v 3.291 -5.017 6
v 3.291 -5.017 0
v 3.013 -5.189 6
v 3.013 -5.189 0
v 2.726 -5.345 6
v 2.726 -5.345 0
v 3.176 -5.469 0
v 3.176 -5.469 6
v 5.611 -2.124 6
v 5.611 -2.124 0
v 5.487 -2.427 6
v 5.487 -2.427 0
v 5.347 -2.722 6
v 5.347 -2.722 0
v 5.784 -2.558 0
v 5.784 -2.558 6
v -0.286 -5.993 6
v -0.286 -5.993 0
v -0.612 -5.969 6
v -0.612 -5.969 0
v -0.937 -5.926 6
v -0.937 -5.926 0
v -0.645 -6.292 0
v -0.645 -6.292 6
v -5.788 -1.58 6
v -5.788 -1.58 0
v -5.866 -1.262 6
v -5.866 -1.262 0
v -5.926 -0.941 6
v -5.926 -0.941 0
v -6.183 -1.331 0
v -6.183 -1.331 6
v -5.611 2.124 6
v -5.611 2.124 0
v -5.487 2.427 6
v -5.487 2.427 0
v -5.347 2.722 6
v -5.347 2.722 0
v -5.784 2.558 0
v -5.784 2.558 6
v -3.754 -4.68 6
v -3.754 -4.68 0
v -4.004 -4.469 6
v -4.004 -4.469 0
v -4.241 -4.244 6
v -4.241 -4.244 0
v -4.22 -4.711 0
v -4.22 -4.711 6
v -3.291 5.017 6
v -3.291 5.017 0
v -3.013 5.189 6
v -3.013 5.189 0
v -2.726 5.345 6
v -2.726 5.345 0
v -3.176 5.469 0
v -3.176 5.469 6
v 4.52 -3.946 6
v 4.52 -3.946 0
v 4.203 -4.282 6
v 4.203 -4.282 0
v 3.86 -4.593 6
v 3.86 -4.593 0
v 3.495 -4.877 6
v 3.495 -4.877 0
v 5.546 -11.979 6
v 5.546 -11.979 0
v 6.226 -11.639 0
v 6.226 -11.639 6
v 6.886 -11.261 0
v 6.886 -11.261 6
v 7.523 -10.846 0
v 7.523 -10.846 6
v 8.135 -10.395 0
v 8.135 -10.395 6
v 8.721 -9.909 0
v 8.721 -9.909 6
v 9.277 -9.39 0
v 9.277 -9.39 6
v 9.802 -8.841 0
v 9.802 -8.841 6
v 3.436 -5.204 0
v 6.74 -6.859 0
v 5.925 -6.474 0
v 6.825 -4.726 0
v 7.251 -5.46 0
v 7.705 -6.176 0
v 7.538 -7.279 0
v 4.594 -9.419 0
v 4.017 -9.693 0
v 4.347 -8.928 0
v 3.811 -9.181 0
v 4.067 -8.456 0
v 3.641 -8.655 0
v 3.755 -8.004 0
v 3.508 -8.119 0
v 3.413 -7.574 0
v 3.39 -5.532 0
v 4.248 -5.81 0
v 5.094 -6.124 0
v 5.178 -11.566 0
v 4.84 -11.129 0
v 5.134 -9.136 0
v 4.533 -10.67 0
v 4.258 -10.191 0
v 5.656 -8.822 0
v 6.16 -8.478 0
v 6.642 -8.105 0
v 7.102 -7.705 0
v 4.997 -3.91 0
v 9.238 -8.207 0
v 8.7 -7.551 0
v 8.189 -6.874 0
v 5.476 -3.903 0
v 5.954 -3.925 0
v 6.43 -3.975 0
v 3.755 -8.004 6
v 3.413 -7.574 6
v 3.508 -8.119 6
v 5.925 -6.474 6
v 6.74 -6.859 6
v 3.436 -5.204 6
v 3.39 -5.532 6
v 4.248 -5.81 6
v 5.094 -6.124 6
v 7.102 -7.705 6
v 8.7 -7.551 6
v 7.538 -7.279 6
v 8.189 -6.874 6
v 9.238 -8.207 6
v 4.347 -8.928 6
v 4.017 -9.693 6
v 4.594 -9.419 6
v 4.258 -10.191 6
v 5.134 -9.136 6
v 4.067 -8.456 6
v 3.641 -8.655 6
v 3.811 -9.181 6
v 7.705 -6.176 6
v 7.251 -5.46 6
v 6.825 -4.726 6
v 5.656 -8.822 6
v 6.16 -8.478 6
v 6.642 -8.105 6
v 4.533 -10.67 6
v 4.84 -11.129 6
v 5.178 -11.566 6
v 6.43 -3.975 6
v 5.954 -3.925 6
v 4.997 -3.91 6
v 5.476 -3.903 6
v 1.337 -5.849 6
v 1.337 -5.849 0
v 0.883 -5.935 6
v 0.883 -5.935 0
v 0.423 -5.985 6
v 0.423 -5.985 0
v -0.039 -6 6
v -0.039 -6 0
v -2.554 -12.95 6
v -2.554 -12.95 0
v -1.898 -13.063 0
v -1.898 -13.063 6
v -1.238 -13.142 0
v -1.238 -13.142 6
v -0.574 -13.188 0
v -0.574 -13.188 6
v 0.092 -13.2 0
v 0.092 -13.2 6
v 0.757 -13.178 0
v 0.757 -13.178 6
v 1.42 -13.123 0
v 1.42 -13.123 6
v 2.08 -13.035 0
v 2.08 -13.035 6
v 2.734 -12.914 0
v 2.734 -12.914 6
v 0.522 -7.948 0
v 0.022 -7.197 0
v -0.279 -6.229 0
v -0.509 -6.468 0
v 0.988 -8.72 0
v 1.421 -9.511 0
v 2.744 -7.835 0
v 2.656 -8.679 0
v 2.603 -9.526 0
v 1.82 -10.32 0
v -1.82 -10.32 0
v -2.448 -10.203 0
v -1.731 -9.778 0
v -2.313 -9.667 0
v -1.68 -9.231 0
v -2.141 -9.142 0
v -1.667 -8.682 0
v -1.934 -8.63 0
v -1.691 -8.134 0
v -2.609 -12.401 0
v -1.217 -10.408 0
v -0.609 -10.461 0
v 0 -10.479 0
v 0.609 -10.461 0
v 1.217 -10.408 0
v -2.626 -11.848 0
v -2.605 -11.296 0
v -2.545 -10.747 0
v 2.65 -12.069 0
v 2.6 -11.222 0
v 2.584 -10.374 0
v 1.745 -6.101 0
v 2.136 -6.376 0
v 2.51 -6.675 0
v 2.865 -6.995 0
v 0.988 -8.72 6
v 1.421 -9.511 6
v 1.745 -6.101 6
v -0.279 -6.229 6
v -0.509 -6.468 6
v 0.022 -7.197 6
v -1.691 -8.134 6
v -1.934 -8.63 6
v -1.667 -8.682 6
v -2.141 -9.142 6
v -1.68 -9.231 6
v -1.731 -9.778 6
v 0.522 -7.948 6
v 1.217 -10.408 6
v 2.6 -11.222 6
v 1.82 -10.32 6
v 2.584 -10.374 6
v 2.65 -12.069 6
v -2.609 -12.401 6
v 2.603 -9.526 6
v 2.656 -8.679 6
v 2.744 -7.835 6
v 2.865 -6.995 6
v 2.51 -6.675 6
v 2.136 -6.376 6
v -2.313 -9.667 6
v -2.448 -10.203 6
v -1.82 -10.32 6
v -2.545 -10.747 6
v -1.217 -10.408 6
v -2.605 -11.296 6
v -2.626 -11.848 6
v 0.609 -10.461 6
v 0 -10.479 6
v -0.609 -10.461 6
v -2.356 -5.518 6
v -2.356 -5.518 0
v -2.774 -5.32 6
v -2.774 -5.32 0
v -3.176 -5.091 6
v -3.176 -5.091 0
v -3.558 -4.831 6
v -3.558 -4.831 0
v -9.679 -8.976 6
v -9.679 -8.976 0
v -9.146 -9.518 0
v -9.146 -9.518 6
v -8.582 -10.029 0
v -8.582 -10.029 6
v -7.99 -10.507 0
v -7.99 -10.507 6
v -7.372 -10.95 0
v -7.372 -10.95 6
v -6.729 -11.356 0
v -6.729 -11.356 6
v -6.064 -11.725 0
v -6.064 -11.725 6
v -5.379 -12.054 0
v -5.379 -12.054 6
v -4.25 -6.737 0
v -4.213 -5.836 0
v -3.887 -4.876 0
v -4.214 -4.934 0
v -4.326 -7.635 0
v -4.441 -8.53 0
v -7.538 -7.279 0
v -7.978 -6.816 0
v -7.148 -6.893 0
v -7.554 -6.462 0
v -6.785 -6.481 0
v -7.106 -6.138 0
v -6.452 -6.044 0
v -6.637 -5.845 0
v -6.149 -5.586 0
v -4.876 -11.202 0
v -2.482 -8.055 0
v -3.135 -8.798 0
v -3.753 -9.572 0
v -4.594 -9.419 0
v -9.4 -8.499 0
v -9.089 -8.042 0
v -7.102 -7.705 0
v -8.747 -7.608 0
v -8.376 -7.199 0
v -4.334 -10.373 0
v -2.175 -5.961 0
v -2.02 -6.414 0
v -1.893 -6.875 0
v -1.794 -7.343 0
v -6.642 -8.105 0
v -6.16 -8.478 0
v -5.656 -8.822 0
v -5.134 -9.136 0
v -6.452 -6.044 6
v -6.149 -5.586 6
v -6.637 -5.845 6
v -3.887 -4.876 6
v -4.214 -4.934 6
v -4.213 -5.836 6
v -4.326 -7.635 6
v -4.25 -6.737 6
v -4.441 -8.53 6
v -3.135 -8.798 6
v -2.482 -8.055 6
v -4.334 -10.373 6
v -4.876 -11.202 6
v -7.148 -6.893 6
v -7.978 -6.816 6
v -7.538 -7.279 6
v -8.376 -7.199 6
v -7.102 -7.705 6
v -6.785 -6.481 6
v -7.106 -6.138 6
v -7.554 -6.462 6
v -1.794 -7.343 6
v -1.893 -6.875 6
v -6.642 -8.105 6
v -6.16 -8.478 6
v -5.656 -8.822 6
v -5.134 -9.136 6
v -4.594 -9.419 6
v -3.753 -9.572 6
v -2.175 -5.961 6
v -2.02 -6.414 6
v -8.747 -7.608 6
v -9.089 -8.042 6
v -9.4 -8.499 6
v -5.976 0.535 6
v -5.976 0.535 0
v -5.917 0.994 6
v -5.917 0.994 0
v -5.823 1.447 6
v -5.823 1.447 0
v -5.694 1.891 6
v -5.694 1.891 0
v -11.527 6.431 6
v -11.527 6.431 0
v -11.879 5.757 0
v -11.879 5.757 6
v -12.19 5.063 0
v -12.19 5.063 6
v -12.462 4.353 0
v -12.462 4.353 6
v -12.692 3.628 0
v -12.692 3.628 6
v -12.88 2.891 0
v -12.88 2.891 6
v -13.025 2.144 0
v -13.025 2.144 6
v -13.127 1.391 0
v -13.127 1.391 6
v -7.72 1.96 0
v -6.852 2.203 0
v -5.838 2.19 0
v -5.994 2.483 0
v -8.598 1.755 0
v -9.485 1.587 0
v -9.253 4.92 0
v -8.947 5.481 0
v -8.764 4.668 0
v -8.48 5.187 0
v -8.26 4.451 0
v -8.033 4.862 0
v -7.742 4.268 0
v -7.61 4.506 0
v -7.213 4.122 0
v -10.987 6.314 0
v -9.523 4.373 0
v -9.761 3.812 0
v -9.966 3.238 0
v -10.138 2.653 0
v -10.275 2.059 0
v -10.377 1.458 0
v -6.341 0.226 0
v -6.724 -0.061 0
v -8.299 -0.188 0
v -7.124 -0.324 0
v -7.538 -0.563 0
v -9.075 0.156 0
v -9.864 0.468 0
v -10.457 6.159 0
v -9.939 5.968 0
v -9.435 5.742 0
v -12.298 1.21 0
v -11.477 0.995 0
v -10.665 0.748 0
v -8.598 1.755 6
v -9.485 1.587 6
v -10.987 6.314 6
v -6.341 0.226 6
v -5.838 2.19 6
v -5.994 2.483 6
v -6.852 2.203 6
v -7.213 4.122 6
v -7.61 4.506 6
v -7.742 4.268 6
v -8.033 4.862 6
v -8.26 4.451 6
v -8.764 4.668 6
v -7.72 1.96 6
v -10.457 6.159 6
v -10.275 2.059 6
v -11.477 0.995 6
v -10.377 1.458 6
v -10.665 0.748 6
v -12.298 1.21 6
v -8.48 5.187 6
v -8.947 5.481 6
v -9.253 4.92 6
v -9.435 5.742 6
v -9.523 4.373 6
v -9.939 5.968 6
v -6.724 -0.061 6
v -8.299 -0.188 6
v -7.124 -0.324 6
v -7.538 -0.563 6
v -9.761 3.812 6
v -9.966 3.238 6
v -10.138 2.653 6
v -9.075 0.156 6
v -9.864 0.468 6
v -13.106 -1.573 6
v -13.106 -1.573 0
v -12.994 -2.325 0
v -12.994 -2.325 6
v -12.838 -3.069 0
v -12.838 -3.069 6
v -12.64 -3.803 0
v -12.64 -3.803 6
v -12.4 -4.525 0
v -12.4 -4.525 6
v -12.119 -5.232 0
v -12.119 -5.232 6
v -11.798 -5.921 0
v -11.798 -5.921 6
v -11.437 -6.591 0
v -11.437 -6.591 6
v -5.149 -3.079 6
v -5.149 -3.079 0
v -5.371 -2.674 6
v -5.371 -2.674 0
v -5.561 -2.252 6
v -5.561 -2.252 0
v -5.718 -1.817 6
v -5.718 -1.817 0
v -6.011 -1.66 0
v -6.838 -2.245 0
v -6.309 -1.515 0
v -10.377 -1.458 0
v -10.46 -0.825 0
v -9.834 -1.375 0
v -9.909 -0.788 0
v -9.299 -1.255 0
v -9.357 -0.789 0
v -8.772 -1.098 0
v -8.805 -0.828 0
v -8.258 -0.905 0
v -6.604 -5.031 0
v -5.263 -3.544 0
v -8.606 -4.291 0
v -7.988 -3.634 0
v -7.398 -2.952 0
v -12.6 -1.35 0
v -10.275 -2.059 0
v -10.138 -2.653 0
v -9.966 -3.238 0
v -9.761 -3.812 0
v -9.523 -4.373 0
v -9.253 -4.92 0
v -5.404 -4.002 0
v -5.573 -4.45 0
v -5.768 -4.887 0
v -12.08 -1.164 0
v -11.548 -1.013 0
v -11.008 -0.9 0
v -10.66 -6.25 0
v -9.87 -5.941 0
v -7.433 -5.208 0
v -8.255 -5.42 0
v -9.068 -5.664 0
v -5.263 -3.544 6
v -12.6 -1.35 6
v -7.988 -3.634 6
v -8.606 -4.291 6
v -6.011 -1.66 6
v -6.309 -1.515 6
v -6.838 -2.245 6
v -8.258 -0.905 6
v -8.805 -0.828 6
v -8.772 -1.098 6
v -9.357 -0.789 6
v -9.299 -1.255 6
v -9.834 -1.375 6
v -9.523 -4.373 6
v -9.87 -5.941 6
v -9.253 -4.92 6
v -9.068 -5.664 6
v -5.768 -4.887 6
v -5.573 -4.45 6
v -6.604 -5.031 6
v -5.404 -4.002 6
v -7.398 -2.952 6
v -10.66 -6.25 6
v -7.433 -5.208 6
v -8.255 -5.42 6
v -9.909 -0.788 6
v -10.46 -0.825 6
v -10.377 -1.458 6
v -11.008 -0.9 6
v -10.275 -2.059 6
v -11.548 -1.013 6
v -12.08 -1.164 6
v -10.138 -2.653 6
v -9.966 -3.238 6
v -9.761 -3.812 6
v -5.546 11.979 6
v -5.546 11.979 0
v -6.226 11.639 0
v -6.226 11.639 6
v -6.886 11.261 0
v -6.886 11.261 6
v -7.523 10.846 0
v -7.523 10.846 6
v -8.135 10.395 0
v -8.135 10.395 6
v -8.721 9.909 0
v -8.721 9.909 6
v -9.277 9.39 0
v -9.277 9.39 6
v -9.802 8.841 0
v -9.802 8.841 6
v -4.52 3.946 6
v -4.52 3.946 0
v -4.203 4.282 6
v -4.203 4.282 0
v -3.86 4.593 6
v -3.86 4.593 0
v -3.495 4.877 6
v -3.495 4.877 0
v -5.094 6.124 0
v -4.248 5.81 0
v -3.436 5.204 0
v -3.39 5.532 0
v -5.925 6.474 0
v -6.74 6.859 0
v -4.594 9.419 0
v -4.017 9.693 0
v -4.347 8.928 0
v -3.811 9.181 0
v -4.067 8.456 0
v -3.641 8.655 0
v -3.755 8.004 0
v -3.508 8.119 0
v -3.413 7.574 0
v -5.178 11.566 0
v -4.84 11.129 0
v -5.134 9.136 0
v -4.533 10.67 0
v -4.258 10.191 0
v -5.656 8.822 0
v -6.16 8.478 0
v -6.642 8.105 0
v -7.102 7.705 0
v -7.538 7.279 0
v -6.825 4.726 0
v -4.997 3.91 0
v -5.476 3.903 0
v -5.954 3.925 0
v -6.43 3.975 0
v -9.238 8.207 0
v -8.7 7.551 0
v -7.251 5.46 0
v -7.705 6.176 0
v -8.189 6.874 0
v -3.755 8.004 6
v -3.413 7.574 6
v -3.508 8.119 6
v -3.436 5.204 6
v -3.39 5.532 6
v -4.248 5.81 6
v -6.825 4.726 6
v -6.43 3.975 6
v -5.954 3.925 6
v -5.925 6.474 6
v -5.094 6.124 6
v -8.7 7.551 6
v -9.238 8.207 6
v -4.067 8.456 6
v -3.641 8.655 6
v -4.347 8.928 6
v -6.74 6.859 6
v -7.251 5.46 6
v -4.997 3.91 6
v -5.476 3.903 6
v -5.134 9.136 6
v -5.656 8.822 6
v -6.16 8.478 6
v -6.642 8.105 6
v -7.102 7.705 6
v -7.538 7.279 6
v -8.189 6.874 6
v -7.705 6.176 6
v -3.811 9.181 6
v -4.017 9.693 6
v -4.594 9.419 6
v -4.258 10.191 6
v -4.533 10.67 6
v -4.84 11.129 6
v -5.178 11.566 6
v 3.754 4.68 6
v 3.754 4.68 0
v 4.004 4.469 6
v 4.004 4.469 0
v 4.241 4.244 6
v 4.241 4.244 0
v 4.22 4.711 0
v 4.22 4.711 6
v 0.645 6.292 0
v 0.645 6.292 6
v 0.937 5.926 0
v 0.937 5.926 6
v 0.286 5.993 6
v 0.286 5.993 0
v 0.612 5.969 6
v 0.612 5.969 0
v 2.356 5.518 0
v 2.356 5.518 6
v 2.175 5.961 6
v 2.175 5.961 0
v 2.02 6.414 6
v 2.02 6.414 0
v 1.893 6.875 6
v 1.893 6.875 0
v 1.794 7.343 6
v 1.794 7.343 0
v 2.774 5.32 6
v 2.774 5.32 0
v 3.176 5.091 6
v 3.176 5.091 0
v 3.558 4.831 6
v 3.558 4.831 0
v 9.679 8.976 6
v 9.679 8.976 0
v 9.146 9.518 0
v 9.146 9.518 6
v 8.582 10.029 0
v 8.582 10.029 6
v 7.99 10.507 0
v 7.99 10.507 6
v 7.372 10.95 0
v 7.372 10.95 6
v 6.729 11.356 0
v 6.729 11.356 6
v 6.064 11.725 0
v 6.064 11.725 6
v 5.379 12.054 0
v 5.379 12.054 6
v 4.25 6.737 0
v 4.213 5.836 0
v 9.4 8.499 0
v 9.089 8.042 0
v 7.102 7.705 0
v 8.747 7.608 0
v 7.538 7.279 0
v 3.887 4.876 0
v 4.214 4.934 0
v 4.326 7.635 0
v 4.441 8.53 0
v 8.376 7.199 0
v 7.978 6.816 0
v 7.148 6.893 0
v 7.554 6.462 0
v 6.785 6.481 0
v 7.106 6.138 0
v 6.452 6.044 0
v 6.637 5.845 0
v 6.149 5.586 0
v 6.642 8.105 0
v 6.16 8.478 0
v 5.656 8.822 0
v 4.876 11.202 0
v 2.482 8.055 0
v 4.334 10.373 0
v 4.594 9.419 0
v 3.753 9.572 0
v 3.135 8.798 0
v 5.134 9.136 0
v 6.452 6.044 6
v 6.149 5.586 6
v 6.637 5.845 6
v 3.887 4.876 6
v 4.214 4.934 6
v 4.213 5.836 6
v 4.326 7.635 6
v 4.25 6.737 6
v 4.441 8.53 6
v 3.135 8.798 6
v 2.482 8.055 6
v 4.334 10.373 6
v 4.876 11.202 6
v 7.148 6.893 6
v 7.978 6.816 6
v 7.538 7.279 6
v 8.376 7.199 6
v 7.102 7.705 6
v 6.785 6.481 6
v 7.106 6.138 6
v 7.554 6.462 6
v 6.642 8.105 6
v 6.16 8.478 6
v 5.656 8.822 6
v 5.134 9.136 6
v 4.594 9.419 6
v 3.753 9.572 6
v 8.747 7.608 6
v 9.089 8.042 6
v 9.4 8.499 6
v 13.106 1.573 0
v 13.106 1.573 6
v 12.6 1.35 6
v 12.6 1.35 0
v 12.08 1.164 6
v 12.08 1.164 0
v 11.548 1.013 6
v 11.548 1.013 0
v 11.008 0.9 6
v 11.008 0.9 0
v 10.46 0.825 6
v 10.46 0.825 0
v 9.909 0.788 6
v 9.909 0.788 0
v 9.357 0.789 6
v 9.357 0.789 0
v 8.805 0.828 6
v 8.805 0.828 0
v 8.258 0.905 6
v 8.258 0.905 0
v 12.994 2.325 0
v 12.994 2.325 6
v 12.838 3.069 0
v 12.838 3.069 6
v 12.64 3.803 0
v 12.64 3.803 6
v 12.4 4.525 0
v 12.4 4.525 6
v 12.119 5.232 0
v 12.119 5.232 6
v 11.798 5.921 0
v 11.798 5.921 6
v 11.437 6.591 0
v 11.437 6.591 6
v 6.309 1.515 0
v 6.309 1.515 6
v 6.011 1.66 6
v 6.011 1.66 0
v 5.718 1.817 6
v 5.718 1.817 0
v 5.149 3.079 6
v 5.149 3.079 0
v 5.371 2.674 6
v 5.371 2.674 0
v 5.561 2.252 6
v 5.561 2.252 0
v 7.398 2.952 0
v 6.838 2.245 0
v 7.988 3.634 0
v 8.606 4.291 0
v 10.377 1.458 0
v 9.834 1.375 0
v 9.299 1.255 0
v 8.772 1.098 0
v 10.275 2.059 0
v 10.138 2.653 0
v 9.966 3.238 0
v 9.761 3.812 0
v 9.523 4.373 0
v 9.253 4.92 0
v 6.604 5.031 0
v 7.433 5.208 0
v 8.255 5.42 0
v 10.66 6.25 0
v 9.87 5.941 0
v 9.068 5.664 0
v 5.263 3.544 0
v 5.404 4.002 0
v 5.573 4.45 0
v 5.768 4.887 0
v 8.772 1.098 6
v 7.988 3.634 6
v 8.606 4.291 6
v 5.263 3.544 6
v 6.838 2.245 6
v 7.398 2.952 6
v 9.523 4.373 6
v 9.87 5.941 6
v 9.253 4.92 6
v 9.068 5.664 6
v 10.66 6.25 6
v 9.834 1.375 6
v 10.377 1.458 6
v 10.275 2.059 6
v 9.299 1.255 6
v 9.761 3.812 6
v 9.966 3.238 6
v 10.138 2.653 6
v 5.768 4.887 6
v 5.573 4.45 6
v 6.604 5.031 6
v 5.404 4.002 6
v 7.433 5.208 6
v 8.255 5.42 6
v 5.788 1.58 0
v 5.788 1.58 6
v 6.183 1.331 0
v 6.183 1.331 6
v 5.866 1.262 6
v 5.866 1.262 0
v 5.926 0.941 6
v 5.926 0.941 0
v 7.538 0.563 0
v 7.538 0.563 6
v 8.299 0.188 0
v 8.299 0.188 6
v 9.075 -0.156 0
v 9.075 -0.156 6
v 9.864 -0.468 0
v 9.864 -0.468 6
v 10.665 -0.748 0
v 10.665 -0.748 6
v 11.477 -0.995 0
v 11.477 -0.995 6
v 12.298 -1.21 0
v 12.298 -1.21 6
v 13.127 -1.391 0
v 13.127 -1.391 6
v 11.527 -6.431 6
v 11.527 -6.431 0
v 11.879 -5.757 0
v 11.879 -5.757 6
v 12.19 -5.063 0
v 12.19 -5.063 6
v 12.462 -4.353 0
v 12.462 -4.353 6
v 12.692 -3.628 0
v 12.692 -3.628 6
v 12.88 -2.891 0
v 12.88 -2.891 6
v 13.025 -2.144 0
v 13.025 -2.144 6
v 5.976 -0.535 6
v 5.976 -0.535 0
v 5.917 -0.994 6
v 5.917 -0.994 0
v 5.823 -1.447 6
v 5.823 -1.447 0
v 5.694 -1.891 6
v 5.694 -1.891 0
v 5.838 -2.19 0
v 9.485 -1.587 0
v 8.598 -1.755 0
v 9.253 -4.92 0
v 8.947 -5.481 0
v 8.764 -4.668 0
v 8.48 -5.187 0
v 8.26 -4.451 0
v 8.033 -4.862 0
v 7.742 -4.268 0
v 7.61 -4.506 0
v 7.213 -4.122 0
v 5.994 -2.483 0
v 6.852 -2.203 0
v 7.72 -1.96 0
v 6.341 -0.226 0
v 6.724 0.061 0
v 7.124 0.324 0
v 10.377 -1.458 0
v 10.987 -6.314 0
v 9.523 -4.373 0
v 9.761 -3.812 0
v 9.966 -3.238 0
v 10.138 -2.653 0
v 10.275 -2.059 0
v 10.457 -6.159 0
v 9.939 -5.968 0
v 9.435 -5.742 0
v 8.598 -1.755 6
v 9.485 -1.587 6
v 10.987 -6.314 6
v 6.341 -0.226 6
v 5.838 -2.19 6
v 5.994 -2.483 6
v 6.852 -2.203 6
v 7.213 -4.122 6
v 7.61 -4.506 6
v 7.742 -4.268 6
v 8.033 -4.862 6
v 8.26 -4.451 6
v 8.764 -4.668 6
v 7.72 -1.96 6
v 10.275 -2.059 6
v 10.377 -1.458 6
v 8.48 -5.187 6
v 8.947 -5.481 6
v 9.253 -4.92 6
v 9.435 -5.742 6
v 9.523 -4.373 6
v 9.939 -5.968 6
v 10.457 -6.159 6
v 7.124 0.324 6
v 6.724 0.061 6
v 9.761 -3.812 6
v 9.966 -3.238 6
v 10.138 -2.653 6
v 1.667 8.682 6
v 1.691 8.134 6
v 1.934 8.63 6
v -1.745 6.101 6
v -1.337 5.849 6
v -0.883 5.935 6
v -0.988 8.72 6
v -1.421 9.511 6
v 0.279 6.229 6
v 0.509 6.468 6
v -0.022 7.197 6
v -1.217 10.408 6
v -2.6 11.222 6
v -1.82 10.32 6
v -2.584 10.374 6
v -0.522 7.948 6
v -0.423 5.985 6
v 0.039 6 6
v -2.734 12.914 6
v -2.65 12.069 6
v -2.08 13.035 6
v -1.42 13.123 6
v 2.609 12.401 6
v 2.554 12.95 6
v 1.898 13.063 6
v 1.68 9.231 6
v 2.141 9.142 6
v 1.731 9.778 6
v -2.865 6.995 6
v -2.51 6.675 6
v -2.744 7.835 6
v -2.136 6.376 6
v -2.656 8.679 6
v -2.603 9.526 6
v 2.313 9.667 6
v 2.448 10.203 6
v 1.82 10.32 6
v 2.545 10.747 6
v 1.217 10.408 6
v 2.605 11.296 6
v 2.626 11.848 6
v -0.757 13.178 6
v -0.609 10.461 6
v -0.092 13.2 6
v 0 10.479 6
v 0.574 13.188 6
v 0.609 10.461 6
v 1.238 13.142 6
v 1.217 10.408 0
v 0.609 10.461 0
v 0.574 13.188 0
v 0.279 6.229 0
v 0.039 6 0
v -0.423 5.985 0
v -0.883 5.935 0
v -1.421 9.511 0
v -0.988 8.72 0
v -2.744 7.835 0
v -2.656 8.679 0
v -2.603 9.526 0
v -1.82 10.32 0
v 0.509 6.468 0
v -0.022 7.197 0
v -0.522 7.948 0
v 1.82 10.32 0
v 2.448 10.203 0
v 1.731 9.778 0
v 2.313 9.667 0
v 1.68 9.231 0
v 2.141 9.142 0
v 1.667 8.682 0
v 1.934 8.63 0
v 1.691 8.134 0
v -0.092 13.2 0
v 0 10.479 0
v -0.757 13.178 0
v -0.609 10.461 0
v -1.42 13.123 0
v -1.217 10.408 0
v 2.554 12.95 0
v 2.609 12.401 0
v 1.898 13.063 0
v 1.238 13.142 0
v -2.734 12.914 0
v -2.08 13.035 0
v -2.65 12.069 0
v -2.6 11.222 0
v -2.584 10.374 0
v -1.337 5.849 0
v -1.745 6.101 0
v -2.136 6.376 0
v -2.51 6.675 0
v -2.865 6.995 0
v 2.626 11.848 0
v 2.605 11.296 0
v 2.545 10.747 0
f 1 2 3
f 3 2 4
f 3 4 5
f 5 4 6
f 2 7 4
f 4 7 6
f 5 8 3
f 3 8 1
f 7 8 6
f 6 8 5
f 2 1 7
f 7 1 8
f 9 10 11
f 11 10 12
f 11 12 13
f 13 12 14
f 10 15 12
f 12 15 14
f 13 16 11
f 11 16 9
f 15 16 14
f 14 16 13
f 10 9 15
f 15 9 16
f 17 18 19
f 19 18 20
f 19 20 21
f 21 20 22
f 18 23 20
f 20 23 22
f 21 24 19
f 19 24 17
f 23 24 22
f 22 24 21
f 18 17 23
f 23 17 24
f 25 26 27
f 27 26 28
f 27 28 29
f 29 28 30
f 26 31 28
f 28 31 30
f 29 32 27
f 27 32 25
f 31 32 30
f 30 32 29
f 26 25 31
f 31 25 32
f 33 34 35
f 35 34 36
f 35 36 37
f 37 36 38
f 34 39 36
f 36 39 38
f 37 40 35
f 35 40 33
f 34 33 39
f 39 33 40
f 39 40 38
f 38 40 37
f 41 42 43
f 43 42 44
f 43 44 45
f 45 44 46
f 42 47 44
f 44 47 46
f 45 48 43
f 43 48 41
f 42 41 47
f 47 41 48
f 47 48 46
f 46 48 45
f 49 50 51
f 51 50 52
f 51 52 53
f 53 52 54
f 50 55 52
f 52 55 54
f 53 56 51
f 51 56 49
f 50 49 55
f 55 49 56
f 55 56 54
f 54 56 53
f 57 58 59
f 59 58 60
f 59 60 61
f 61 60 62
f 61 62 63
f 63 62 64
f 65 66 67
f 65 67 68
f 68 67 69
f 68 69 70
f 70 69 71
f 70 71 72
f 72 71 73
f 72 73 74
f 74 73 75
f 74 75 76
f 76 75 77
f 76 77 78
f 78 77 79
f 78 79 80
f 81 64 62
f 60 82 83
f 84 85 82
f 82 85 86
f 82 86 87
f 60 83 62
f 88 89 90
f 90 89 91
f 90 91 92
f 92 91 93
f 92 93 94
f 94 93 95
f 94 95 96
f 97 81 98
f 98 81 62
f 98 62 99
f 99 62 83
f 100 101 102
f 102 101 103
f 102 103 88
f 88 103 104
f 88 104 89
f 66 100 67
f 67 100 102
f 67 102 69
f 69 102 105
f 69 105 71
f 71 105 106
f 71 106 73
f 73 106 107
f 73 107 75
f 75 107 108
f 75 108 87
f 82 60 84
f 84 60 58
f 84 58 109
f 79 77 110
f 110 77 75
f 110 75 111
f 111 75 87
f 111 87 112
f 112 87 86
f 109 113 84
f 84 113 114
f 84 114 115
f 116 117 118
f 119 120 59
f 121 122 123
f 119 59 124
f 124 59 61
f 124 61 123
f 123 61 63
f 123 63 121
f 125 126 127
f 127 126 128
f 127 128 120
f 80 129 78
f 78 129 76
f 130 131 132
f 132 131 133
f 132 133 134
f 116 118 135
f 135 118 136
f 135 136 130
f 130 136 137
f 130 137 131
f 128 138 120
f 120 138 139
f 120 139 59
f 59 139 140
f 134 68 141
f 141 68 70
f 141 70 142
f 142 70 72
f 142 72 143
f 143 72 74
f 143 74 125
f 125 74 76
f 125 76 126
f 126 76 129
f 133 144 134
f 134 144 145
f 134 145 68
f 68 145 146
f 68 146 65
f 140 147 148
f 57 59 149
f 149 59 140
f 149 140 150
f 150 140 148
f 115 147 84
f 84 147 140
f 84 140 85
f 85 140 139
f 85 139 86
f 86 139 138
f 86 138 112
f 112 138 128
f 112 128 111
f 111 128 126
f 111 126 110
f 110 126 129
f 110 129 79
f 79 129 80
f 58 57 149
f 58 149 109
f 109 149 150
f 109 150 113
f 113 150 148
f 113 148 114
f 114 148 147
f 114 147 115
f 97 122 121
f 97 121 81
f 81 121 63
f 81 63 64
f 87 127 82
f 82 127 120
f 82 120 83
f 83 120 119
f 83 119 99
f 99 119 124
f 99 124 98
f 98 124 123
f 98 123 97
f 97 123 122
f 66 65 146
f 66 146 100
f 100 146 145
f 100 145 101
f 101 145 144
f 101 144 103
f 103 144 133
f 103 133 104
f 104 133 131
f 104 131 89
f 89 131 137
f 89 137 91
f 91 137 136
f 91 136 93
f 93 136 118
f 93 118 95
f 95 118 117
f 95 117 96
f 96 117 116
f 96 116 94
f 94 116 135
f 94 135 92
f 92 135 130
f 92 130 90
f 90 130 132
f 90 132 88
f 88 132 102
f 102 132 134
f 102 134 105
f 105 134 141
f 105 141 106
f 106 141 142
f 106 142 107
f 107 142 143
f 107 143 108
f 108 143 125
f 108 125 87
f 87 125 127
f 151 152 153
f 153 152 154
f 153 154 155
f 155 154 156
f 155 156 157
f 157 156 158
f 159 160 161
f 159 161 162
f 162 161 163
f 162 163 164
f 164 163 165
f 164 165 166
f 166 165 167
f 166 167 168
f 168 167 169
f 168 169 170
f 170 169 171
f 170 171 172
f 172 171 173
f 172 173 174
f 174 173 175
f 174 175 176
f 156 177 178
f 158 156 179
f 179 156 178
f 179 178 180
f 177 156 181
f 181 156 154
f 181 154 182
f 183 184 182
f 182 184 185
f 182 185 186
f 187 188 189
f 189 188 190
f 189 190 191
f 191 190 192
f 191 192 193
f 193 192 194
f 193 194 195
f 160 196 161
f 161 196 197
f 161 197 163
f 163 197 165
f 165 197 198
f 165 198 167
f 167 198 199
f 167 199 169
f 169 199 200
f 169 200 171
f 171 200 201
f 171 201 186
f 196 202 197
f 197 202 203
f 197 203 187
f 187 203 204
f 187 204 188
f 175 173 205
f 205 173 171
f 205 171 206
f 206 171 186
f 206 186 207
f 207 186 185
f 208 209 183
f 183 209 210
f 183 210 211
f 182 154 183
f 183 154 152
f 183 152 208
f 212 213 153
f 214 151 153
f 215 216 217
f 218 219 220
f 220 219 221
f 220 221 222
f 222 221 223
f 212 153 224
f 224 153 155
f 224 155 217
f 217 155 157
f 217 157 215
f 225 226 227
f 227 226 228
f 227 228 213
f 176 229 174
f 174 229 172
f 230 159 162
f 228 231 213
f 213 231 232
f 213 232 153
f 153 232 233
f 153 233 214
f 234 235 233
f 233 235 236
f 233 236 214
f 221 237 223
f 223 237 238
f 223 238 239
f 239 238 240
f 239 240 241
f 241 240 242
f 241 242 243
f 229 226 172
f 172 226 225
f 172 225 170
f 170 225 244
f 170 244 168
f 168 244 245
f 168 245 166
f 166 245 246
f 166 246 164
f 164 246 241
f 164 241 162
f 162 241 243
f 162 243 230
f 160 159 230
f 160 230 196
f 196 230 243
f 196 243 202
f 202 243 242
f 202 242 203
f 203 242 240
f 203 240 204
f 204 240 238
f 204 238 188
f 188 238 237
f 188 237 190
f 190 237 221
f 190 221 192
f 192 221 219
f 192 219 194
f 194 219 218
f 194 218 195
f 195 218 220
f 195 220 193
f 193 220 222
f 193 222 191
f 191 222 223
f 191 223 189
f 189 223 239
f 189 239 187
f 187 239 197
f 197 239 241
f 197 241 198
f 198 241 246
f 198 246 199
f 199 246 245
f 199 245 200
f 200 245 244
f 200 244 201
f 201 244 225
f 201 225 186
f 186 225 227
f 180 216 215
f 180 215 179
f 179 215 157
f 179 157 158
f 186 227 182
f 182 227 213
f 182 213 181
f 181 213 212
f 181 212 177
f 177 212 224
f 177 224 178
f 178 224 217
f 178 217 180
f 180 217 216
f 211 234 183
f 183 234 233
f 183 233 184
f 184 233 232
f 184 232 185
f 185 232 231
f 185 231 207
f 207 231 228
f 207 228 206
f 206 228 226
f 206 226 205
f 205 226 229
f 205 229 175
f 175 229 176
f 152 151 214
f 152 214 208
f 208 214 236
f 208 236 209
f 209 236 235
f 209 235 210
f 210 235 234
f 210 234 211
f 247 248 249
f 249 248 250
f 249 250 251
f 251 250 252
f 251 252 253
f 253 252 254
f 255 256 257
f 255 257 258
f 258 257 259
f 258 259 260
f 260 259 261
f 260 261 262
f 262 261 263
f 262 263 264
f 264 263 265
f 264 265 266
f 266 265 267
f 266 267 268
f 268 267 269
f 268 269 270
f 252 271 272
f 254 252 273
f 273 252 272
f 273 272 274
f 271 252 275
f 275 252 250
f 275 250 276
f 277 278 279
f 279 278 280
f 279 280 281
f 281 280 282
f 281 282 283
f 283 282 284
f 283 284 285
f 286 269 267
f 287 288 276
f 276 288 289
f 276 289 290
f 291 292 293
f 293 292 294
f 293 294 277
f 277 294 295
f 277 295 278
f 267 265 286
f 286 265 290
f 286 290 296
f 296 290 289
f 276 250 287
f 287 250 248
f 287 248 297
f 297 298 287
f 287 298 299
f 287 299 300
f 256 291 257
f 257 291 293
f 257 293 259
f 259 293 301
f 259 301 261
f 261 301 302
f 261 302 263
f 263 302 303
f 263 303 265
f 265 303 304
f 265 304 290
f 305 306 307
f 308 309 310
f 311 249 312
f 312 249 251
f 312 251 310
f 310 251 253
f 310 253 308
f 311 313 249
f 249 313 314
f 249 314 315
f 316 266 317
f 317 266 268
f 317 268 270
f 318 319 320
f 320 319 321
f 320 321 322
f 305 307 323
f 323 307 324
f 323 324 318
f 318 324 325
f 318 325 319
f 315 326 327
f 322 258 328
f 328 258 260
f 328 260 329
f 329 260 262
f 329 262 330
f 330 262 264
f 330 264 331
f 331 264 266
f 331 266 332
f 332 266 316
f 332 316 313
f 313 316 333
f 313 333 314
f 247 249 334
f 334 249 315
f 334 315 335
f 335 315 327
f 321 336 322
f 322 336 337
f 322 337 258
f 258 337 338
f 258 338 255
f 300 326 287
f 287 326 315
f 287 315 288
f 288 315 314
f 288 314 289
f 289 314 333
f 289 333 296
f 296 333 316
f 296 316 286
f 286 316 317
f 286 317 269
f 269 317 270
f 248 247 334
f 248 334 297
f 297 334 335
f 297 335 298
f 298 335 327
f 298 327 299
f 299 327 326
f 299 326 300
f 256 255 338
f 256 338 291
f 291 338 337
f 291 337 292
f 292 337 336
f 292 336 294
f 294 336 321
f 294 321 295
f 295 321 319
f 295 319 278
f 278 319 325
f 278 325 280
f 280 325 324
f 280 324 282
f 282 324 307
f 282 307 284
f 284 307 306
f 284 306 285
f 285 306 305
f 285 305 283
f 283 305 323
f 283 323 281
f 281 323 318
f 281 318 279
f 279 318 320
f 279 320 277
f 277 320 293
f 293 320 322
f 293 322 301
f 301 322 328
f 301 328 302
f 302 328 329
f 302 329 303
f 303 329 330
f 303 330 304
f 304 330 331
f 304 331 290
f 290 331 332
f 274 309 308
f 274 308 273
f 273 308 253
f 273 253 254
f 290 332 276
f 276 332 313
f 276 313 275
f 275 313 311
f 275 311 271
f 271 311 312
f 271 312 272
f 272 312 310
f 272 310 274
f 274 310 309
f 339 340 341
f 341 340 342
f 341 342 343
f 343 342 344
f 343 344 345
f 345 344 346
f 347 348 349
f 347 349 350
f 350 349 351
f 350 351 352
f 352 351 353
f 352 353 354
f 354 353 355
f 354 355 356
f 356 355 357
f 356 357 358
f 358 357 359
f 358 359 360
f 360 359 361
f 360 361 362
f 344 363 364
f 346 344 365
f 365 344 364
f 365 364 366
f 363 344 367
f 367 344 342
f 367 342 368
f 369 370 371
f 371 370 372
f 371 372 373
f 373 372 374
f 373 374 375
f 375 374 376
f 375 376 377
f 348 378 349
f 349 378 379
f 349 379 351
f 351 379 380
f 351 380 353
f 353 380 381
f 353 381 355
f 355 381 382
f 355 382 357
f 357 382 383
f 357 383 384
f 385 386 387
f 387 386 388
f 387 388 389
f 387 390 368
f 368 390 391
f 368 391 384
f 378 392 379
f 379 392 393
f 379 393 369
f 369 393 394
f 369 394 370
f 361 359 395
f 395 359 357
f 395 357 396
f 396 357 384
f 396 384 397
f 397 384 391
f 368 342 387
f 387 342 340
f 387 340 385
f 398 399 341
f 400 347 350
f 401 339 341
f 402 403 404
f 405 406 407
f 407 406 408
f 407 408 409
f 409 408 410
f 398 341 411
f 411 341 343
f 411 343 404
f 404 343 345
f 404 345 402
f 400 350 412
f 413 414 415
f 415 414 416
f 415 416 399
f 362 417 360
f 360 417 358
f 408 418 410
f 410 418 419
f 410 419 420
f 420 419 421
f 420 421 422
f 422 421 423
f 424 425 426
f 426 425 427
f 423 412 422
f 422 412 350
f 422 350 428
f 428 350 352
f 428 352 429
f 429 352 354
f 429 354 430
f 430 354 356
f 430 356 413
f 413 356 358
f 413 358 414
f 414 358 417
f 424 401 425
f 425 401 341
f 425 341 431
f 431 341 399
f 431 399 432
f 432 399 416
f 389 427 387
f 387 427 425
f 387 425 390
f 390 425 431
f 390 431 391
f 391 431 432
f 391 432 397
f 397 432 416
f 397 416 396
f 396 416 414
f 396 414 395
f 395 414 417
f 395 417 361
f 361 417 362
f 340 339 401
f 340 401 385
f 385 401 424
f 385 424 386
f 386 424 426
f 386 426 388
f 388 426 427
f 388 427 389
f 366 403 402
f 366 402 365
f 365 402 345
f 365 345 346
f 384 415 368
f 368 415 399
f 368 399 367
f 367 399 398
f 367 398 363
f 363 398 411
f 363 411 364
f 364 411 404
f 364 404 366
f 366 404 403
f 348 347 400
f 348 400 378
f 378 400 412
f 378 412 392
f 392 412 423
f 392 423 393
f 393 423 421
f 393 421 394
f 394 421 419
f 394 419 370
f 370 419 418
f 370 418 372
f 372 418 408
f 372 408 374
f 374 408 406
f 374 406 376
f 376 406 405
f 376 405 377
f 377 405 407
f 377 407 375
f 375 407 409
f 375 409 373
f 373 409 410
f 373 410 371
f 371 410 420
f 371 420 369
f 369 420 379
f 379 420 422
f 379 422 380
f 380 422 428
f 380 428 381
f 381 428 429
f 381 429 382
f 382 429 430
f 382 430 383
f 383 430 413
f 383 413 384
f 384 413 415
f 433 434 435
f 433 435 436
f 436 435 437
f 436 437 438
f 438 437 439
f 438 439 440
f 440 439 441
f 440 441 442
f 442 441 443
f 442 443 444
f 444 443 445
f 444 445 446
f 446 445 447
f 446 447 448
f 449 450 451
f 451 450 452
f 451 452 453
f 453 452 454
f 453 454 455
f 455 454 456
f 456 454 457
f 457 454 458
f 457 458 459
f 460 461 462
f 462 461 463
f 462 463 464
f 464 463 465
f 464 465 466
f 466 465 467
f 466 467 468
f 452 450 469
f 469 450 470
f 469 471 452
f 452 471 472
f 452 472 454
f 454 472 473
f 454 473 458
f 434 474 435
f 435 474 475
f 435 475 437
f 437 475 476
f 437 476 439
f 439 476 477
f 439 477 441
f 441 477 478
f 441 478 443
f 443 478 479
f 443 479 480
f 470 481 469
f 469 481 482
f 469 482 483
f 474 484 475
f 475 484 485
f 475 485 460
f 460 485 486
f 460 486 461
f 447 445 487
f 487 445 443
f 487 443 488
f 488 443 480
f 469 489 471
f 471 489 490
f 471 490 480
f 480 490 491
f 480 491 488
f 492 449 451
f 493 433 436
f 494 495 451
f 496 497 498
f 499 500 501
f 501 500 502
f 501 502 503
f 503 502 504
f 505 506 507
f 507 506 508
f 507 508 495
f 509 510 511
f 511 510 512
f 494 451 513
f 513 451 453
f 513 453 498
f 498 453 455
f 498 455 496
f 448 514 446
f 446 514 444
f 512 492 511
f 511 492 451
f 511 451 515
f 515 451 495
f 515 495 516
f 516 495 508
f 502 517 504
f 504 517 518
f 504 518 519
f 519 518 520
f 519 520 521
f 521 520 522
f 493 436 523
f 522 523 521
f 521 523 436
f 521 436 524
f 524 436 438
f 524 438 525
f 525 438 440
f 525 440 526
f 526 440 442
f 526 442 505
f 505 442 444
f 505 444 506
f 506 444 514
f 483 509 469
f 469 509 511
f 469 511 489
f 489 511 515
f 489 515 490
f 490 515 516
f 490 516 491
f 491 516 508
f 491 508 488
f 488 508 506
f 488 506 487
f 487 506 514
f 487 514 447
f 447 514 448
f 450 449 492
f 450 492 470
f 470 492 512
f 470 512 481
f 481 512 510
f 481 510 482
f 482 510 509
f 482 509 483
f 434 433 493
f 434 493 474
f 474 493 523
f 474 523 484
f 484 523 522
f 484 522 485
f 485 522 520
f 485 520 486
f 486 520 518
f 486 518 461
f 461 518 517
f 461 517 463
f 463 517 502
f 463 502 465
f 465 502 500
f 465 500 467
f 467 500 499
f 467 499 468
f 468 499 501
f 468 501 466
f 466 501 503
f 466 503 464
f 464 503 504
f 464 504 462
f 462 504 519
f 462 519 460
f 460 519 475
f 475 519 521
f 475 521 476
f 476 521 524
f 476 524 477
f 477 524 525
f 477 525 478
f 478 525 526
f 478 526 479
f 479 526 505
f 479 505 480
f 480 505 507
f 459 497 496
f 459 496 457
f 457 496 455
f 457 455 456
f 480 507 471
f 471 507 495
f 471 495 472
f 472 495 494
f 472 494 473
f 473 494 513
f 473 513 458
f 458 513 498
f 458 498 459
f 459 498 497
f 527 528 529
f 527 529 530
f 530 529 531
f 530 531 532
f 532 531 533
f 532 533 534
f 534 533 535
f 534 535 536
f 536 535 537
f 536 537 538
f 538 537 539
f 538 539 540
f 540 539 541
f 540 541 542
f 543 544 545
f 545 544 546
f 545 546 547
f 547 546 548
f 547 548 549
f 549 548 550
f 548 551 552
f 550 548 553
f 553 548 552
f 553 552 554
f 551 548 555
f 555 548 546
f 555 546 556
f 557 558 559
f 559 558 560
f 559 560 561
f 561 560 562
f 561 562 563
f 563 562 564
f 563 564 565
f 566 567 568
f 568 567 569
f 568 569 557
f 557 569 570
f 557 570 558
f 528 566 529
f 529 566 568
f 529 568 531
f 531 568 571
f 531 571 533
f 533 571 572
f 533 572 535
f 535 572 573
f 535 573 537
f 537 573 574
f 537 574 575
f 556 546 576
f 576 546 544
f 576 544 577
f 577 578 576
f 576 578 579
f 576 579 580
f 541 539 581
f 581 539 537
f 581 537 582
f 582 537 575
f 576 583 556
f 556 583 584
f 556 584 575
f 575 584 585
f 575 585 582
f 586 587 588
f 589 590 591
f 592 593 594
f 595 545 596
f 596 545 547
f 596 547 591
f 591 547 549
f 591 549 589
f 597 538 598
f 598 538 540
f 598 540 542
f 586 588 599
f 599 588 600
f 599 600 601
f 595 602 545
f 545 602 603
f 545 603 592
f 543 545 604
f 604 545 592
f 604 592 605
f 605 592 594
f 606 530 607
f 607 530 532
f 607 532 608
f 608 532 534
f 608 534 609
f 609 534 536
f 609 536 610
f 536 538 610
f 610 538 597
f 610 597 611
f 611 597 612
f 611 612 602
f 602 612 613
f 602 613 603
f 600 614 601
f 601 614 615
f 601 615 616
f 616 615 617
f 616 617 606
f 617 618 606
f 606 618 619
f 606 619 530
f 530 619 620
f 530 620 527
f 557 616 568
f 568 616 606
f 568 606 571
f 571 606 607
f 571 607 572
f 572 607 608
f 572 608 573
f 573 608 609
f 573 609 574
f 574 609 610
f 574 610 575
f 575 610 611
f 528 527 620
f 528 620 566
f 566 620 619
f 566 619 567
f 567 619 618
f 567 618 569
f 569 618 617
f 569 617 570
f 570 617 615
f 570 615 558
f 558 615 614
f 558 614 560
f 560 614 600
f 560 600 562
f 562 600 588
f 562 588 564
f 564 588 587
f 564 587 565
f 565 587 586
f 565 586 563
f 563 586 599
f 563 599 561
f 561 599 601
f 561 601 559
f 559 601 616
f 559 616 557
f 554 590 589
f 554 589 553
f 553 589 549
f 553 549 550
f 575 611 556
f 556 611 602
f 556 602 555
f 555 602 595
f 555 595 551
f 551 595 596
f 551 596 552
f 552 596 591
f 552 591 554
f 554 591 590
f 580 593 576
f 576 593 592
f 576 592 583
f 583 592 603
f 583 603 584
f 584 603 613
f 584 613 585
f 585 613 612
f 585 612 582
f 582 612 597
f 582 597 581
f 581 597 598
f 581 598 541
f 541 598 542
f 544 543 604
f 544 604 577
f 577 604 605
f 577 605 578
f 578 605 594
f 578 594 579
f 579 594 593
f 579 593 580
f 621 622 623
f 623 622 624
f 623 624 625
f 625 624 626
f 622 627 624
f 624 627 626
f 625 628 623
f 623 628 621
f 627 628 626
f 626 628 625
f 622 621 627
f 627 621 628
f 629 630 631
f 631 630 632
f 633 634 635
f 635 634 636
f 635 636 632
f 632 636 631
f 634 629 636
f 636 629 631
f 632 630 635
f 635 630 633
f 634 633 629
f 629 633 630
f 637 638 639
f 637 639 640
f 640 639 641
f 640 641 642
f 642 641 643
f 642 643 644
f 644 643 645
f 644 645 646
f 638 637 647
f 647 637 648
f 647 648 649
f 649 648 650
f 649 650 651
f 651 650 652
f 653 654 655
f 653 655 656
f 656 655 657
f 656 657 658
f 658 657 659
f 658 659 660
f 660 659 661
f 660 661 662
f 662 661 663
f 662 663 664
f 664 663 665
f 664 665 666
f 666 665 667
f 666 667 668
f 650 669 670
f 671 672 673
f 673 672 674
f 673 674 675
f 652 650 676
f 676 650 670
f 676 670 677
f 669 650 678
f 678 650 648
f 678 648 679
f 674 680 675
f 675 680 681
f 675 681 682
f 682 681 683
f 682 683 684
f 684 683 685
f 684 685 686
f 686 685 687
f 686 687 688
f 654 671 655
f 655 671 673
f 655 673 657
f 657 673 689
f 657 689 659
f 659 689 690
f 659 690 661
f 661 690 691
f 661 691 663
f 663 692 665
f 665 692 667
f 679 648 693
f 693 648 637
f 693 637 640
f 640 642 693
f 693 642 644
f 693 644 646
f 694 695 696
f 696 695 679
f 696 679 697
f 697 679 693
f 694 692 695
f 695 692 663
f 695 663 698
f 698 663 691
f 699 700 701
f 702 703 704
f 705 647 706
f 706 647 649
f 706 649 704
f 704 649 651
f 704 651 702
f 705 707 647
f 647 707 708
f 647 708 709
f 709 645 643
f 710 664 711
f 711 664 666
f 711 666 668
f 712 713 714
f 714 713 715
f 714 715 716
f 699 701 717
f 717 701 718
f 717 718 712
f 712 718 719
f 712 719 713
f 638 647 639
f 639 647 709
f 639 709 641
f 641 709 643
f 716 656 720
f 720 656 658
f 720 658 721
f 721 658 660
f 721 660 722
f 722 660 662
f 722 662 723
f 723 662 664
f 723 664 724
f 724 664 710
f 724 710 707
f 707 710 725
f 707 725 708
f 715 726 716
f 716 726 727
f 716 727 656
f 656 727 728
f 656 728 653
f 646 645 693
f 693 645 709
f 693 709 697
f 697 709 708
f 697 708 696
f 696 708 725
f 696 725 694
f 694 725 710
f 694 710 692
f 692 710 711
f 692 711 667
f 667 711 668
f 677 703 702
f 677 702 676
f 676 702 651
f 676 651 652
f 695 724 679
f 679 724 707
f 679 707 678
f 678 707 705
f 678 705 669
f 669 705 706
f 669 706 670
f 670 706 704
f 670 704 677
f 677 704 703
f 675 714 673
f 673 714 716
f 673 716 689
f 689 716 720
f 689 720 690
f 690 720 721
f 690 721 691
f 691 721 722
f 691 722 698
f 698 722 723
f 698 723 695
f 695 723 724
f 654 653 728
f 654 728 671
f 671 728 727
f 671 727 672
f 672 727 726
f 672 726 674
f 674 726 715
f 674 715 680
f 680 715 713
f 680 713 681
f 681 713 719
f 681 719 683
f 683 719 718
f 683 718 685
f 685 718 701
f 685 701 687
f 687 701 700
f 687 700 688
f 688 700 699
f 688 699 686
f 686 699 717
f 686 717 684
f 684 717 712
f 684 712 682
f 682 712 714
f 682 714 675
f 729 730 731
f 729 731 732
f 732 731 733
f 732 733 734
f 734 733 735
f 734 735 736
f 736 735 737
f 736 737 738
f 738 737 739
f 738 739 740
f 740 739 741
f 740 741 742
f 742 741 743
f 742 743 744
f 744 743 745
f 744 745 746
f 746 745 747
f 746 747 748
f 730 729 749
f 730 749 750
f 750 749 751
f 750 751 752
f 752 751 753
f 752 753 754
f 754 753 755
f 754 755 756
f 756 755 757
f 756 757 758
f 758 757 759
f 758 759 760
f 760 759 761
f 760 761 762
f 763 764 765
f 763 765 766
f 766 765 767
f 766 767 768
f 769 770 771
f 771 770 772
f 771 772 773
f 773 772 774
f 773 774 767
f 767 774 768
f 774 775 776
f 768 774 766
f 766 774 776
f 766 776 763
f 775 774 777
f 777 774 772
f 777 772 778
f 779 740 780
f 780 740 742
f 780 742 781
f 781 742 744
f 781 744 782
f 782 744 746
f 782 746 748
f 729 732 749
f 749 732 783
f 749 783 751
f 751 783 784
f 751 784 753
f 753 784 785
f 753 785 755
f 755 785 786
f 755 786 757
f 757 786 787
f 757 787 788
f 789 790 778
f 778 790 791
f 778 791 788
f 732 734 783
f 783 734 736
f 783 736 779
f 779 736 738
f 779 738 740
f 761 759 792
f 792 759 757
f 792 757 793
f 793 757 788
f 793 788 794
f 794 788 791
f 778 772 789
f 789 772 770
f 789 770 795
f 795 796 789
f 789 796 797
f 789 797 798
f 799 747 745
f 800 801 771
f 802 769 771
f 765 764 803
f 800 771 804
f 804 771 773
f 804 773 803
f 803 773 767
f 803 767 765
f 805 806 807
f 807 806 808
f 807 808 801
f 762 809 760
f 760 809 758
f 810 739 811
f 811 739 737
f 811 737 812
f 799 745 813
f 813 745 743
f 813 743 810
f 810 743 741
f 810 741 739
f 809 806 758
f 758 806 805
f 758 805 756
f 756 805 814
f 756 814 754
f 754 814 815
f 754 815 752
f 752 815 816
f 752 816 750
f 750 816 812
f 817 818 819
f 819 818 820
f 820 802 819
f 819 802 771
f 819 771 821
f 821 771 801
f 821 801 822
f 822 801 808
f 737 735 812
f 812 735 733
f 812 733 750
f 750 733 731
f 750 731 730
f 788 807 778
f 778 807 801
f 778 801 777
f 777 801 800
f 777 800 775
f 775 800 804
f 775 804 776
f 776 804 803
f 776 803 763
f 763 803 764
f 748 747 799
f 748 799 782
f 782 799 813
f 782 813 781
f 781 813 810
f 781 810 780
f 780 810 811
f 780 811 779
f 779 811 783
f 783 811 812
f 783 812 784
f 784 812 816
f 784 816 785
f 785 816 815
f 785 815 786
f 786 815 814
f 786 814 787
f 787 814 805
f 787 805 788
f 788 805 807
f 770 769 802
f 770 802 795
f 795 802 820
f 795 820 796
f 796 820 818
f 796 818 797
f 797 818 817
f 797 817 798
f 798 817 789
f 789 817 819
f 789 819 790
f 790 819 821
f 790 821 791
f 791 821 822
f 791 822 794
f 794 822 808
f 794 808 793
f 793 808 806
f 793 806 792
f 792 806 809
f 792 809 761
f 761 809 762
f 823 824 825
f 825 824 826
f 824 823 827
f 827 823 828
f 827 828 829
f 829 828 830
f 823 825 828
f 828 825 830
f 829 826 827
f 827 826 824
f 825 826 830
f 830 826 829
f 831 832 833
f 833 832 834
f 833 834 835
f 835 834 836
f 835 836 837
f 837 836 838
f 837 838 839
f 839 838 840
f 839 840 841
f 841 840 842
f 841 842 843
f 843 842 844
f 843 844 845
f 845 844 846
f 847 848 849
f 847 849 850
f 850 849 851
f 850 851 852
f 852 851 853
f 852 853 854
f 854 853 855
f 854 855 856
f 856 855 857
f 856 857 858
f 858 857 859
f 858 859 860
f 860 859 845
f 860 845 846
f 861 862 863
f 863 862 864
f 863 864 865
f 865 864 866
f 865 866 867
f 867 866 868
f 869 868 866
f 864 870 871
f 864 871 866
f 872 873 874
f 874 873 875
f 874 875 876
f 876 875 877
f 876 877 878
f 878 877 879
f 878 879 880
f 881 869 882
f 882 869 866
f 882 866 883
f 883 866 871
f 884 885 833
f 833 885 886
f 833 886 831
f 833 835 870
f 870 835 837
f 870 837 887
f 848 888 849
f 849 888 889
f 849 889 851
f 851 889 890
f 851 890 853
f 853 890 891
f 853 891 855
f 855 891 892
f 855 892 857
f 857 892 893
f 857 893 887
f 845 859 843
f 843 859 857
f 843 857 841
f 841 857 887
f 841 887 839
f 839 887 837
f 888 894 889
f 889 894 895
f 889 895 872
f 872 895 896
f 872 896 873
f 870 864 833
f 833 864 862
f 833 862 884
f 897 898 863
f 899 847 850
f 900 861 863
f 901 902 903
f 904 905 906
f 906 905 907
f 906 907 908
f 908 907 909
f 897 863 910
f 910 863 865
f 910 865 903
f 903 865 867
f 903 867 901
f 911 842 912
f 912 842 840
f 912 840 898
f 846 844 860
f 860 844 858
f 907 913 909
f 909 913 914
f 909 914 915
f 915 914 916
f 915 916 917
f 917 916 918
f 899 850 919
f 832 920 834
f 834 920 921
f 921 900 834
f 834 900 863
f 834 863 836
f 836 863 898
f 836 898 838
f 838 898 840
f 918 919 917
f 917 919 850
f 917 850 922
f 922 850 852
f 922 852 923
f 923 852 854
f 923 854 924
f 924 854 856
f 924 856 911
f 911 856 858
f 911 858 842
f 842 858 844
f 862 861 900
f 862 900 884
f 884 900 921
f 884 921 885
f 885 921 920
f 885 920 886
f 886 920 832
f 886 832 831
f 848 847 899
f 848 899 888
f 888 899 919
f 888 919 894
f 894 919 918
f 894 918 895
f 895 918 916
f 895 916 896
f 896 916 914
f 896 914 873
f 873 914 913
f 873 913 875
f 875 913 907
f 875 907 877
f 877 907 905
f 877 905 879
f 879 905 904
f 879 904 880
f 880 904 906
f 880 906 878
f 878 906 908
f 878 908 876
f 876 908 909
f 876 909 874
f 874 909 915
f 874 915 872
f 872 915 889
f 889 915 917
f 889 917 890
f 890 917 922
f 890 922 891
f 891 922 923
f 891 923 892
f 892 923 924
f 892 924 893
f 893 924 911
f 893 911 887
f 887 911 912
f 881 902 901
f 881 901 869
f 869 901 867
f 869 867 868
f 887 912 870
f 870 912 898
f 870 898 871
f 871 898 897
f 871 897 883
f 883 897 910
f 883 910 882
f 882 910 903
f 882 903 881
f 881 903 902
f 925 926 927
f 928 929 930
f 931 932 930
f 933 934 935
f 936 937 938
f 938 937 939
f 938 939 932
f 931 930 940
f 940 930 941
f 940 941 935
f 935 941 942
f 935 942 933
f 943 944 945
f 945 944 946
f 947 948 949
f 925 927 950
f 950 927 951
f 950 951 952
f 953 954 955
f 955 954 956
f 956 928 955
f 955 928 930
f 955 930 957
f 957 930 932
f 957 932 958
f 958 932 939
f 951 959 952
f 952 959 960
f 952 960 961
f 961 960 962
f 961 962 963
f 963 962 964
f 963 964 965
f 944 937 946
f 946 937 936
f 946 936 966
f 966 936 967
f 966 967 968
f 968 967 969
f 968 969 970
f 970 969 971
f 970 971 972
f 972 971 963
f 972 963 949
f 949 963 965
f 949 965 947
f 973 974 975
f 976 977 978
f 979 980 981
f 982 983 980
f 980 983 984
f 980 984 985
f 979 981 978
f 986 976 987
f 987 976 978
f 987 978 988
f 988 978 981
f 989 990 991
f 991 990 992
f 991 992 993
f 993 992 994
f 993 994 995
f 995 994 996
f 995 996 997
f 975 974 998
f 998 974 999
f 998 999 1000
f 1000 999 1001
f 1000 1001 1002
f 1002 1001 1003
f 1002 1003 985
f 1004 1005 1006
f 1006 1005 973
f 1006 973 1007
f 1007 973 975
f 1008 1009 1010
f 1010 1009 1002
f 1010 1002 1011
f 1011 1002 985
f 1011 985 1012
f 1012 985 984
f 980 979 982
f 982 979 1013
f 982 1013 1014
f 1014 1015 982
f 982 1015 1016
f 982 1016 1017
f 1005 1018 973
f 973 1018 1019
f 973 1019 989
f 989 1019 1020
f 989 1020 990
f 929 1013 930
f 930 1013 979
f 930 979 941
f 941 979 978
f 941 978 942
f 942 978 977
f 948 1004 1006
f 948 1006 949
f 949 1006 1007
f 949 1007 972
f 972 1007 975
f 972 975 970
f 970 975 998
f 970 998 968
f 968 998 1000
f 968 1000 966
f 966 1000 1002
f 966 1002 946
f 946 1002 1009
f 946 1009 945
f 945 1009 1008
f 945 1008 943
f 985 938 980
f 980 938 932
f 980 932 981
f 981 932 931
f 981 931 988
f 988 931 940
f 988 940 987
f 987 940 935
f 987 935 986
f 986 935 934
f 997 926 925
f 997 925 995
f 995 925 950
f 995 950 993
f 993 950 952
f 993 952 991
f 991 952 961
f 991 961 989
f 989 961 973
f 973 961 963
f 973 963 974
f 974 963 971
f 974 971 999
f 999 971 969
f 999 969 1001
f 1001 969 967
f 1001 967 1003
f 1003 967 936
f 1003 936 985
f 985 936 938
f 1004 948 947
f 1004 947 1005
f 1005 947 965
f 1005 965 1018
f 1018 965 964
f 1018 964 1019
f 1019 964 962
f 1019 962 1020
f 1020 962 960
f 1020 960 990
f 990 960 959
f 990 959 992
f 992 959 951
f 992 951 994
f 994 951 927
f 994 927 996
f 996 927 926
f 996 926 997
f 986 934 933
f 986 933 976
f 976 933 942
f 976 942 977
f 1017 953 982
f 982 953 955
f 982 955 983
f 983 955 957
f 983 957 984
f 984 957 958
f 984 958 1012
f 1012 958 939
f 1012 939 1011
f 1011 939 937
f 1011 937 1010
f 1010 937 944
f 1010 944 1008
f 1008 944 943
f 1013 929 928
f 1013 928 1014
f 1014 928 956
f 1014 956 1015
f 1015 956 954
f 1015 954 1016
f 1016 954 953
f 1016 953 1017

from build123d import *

# Parameters (mm, degrees)
SKETCH1_R           = 13.2
SKETCH1_R_2         = 6
BOSS_EXTRUDE1_DEPTH = 6
CUT_EXTRUDE1_DEPTH  = 7
CIRPATTERN1_COUNT   = 10


with BuildPart() as part:
    # Sketch1 → Boss-Extrude1 (new body)
    with BuildSketch(Plane.XY):
        Circle(SKETCH1_R)
        Circle(SKETCH1_R_2, mode=Mode.SUBTRACT)
    extrude(amount=BOSS_EXTRUDE1_DEPTH)

    # Sketch2 → Cut-Extrude1 (cut, through all)
    with BuildSketch(Plane.XY.offset(6)):
        with BuildLine():
            ThreePointArc((-2.819851171, 12.895287487), (0, 13.2), (2.819851171, 12.895287487))
            ThreePointArc((2.819851171, 12.895287487), (17.084333094, 5.874504435), (1.819851171, 10.32))
            ThreePointArc((1.819851171, 10.32), (0, 10.479229852), (-1.819851171, 10.32))
            ThreePointArc((-1.819851171, 10.32), (36.729469452, 26.770735562), (-2.819851171, 12.895287487))
        make_face()
    cut_extrude1 = extrude(amount=-CUT_EXTRUDE1_DEPTH, mode=Mode.SUBTRACT)

    # CirPattern1: Cut-Extrude1 ×10 about axis
    cirpattern1_axis = Axis((0, 0, 0), (0, 0, 1))
    for i in range(1, CIRPATTERN1_COUNT):
        add(cut_extrude1.rotate(cirpattern1_axis, i * 360 / CIRPATTERN1_COUNT), mode=Mode.SUBTRACT)


solid = part.part
